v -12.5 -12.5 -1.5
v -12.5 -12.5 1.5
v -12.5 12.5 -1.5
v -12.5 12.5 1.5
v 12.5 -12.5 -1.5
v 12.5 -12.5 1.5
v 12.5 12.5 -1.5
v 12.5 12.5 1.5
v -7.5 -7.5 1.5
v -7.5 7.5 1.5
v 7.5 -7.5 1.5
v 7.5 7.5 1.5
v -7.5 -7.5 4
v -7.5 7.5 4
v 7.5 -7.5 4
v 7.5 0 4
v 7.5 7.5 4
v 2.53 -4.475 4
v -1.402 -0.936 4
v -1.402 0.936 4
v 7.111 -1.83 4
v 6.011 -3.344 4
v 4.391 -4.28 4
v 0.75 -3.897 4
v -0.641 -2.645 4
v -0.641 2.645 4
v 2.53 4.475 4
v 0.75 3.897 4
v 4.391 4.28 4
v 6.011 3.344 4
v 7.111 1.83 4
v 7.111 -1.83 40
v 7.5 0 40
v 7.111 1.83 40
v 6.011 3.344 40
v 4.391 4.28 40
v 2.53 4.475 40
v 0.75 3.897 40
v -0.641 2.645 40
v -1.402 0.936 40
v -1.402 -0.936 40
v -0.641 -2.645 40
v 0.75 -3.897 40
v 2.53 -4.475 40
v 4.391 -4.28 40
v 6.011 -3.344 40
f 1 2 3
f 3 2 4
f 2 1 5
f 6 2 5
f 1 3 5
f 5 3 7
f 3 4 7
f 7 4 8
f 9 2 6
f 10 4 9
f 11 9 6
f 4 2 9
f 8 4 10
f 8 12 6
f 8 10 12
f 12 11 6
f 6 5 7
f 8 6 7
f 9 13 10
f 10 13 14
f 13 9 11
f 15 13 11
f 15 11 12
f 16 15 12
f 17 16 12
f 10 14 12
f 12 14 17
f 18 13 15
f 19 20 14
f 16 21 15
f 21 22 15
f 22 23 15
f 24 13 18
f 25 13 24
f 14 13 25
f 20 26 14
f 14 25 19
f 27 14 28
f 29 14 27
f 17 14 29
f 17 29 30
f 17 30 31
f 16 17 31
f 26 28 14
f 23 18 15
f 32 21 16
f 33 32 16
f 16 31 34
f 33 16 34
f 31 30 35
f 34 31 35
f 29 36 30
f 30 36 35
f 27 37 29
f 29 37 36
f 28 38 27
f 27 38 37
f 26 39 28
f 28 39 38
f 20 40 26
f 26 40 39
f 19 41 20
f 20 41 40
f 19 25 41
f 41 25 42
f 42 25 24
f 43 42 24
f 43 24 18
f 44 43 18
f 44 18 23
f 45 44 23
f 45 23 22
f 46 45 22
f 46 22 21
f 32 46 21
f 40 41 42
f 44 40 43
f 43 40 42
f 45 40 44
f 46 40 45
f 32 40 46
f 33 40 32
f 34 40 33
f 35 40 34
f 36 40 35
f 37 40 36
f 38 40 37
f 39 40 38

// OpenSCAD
/*
 *   Creates a bolt for holding a toilet lid to a toilet bowl.
 *   Copyright (C) 2014  Mogue Carpenter
 *
 *    This program is free software: you can redistribute it and/or modify
 *    it under the terms of the GNU General Public License as published by
 *    the Free Software Foundation, either version 3 of the License, or
 *    (at your option) any later version.
 *
 *    This program is distributed in the hope that it will be useful,
 *    but WITHOUT ANY WARRANTY; without even the implied warranty of
 *    MERCHANTABILITY or FITNESS FOR A PARTICULAR PURPOSE.  See the
 *    GNU General Public License for more details.

 *    You should have received a copy of the GNU General Public License
 *    along with this program.  If not, see <http://www.gnu.org/licenses/>.
*/

height = 40;
screw_r = 4.5;
base_w = 25;
base_l = 25;
base_h = 3;
step_w = 15;
step_l = 15;
step_h = 2;

cube ([base_w,base_l,base_h], center=true);
translate([0,0,base_h/2])
	cube ([step_w,step_l,step_h+base_h], center=true);
translate([(step_w/2)-screw_r,0,height/2])
	cylinder(h=height,r=screw_r,center=true);
